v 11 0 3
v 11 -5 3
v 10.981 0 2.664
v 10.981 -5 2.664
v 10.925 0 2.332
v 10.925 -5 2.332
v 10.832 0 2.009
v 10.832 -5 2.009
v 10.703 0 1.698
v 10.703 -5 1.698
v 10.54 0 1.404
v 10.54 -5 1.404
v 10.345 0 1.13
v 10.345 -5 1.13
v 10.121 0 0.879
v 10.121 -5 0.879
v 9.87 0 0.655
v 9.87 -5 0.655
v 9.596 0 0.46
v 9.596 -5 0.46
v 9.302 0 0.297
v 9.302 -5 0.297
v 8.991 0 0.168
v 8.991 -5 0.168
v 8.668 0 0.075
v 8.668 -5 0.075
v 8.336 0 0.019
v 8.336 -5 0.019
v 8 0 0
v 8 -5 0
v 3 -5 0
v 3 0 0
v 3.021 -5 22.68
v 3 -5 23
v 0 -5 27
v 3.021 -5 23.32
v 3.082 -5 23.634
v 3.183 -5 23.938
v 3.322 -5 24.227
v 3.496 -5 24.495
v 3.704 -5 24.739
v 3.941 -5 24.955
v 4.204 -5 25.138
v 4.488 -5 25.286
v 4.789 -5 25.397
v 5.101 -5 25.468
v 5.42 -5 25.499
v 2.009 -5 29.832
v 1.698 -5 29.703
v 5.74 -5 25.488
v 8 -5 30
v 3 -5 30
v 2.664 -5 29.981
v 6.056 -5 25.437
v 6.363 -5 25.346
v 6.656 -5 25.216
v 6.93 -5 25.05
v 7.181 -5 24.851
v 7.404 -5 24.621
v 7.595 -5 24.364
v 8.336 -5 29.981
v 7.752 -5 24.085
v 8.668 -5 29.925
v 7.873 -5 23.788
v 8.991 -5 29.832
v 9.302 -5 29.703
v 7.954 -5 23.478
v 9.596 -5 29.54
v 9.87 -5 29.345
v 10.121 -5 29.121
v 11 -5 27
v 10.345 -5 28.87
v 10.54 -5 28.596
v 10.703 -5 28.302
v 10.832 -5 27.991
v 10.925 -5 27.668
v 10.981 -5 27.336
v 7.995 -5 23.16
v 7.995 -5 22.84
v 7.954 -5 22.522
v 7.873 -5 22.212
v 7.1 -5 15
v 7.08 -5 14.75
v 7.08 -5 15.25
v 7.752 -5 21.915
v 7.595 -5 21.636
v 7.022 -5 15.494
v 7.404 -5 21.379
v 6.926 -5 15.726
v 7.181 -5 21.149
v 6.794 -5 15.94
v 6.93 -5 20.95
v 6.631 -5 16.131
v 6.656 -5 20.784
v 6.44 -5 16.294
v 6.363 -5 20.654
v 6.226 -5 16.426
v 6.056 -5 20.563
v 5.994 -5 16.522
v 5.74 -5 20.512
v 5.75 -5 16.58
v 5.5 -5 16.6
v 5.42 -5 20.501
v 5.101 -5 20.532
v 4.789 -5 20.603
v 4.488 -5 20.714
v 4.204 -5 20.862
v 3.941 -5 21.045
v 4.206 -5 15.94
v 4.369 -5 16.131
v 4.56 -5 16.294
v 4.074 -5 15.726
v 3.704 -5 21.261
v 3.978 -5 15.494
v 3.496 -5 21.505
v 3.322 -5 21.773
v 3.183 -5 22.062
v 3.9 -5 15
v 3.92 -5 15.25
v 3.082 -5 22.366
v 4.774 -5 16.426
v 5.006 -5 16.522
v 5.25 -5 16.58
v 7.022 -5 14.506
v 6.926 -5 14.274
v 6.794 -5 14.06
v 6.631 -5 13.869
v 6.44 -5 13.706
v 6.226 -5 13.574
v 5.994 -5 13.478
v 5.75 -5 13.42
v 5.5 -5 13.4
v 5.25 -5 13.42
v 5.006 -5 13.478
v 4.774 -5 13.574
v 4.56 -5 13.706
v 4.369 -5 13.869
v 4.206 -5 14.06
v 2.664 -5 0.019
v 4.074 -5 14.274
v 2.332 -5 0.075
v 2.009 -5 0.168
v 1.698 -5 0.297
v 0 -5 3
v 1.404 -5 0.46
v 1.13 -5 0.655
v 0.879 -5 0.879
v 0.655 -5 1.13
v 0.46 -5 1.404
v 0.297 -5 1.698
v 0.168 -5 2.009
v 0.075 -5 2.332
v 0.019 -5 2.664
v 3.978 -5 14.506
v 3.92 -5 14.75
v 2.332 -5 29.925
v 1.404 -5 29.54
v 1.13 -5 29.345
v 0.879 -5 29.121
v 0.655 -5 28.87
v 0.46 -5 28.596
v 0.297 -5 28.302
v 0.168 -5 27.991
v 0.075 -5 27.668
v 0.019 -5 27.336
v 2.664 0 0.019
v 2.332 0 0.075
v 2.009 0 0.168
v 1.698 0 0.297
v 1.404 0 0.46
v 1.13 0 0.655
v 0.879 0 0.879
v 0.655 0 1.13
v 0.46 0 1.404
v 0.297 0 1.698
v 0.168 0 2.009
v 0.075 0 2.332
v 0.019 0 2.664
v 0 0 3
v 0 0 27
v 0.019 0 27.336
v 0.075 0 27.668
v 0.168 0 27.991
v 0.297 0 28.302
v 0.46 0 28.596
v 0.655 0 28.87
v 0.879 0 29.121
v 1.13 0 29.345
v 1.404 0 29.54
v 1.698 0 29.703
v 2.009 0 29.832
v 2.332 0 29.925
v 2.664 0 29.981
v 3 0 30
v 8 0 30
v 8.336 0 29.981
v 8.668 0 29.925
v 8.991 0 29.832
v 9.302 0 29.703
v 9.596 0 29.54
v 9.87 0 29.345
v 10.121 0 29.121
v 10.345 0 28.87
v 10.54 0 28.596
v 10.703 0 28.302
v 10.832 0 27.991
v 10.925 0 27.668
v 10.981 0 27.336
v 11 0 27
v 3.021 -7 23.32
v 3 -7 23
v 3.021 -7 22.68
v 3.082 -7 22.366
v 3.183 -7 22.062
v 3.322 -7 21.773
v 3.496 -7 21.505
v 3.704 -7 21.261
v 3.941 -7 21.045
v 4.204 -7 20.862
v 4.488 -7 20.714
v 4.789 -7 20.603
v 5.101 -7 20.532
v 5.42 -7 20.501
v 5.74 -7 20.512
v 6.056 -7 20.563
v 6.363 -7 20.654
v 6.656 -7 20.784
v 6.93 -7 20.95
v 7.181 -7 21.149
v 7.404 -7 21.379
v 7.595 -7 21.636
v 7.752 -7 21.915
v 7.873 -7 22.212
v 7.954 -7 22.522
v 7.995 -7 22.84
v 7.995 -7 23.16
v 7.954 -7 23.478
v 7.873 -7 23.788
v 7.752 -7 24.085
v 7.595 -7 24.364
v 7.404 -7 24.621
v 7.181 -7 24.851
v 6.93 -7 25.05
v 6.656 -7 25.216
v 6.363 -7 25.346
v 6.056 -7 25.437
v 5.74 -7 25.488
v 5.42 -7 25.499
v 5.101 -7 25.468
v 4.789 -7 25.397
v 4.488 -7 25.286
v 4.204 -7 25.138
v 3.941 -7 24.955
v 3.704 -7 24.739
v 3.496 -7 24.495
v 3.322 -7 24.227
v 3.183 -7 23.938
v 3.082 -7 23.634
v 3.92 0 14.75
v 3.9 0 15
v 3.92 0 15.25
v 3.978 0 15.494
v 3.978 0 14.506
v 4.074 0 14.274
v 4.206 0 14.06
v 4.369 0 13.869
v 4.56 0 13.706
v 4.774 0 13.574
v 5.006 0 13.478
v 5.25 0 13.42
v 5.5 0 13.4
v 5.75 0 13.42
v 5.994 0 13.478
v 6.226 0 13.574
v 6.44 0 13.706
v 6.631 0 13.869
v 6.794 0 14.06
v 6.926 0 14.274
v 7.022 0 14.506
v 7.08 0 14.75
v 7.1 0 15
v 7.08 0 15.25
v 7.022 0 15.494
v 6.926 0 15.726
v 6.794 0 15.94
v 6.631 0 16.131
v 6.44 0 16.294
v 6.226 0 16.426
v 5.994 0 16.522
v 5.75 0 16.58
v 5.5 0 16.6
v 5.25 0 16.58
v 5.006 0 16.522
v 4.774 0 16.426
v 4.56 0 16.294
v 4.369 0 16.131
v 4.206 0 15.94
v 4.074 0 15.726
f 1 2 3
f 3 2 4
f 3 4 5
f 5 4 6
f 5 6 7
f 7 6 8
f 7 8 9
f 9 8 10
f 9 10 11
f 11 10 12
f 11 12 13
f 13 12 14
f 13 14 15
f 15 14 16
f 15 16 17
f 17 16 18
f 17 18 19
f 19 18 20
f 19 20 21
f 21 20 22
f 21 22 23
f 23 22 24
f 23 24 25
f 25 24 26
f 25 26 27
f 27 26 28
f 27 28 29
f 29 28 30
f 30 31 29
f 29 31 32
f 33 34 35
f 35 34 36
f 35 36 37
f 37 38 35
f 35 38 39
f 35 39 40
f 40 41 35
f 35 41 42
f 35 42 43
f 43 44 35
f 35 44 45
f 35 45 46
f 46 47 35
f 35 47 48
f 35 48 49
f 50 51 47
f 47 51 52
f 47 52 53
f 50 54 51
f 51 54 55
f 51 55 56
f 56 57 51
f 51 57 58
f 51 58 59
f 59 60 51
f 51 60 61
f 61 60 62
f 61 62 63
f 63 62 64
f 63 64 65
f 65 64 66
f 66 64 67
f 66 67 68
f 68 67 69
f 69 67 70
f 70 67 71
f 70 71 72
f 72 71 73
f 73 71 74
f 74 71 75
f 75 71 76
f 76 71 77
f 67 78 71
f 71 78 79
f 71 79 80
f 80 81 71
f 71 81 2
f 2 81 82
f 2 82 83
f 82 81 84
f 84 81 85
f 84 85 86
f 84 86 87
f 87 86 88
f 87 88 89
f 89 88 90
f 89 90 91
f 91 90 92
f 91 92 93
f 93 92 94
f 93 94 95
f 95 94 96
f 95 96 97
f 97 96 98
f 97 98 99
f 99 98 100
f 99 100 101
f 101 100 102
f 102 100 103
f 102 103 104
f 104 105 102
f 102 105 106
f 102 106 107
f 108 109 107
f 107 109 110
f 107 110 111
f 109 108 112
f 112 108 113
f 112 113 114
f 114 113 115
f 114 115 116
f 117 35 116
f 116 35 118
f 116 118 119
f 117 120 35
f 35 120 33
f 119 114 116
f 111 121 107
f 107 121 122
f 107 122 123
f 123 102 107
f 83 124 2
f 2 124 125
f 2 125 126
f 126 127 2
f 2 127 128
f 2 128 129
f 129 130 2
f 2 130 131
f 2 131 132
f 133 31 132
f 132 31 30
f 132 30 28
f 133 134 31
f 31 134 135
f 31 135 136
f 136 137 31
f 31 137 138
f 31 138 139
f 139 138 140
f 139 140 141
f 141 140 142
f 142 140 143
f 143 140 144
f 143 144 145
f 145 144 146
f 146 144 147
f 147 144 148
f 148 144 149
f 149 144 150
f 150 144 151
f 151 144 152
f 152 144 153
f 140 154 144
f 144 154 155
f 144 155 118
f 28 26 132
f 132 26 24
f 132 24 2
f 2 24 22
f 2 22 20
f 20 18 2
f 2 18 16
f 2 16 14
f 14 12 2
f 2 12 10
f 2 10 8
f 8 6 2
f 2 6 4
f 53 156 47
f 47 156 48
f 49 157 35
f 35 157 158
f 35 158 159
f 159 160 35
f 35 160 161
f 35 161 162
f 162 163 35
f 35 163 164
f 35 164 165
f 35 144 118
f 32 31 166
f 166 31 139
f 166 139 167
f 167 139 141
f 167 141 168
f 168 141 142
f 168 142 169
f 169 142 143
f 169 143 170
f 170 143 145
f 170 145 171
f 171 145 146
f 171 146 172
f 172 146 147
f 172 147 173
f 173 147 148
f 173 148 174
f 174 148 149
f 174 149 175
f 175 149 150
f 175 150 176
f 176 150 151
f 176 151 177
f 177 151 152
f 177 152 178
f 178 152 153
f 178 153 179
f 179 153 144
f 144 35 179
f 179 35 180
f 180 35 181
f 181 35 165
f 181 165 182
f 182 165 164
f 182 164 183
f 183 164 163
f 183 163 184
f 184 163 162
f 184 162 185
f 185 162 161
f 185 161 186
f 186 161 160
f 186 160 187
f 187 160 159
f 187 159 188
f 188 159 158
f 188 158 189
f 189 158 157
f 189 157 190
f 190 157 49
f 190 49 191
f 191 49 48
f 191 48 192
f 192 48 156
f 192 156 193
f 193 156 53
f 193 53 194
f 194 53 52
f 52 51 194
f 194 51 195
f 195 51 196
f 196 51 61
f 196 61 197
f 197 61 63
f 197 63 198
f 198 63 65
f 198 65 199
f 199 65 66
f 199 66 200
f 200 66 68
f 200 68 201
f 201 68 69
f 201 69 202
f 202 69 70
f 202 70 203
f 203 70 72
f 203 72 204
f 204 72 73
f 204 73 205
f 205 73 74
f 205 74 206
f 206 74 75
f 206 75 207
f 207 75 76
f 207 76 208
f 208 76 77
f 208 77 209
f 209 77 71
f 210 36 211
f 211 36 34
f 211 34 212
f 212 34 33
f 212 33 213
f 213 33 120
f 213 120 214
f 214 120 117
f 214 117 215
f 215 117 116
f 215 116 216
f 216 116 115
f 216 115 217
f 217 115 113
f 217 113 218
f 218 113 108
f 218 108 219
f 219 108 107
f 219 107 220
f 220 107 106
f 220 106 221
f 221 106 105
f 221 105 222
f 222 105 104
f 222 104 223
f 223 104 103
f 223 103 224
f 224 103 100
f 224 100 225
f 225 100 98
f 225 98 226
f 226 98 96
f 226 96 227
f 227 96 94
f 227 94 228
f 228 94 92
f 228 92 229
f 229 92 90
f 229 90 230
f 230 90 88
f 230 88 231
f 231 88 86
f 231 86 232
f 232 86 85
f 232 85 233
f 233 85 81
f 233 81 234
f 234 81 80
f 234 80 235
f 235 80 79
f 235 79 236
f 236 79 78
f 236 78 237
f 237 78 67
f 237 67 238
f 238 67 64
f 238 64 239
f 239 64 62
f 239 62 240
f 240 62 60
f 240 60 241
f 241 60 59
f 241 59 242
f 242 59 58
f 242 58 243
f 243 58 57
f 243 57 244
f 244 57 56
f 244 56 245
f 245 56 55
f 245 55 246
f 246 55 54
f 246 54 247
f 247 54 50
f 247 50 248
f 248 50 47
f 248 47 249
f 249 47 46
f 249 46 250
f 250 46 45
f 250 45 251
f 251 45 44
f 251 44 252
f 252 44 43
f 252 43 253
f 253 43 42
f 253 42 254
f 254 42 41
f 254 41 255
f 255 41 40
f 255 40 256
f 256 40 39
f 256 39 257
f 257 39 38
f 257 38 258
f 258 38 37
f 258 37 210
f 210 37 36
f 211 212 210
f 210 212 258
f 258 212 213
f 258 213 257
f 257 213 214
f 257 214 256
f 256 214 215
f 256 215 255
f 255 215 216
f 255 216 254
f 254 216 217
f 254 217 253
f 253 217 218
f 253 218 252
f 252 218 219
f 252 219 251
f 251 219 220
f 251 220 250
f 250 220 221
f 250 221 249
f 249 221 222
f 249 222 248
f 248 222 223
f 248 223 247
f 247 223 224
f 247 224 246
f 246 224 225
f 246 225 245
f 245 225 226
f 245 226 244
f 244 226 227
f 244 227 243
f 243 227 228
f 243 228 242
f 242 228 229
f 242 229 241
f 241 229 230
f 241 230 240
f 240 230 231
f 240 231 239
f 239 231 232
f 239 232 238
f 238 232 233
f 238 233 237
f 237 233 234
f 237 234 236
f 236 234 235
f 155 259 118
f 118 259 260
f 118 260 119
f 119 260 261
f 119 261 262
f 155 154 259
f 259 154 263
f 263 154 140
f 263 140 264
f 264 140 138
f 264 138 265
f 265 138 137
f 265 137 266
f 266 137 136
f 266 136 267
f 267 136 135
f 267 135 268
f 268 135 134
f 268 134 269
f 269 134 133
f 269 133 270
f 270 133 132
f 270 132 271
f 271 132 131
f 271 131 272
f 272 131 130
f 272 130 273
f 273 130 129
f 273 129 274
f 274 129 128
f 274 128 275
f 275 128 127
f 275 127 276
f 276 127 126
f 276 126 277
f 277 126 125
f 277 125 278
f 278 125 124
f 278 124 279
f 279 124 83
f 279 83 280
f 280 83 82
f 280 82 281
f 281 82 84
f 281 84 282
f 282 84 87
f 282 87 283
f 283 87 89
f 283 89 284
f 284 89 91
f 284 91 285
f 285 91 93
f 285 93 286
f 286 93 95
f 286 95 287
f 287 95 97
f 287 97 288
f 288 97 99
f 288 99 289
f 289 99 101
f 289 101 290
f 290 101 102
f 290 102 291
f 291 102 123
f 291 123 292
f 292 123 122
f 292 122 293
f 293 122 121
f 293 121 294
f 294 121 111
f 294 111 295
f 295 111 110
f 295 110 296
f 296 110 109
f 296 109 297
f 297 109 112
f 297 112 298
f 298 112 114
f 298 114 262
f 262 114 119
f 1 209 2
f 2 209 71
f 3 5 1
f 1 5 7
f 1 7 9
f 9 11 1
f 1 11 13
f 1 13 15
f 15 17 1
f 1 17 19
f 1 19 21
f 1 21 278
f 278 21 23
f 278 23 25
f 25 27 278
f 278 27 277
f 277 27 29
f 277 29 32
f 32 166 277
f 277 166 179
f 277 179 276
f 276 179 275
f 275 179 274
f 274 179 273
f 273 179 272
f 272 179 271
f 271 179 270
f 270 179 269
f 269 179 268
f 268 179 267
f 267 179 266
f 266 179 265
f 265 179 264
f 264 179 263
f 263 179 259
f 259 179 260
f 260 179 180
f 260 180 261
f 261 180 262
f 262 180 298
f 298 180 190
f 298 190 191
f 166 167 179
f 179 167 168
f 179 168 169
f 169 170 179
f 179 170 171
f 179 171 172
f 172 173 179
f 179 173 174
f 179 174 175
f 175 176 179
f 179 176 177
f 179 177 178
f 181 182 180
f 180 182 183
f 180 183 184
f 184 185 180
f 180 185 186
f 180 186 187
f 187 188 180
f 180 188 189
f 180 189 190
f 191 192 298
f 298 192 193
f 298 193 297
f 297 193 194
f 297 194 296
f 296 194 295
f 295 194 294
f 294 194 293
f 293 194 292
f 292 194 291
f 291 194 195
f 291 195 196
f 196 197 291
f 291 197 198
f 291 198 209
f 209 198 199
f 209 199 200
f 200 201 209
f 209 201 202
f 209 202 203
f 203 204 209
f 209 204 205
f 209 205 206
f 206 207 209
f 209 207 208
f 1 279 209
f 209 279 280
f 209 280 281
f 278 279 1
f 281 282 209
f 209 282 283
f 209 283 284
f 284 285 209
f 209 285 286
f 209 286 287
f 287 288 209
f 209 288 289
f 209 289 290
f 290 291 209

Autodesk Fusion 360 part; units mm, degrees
sketch "Sketch1" plane through (0, 0, 0) normal (0, 1, 0) x (1, 0, 0)
  line L0 (0, 0) -> (11, 0)
  line L1 (11, 0) -> (11, -30)
  line L2 (11, -30) -> (0, -30)
  line L3 (0, -30) -> (0, 0)
  circle A0 centre (5.5, -15) radius 1.6
  circle A1 centre (5.5, -23) radius 2.5
  dimension "d1" = 30
  dimension "d2" = 11
  dimension "d3" = 3.2
  dimension "d4" = 5
  dimension "d5" = 15
  dimension "d6" = 8
  dimension "d7" = 5.5
extrude "Extrude1" add sketch "Sketch1" against normal blind 5 contours L0 L1 L2 L3 | A1
extrude "Extrude2" add sketch "Sketch1" against normal blind 2 from surface at -5 contours A1
fillet "Fillet1" radius 3 4 edges at (11, -2.5, 30) (0, -2.5, 30) (0, -2.5, 0) (11, -2.5, 0)
equation "d5 = d1 / 2"
equation "d7 = d2 / 2"
